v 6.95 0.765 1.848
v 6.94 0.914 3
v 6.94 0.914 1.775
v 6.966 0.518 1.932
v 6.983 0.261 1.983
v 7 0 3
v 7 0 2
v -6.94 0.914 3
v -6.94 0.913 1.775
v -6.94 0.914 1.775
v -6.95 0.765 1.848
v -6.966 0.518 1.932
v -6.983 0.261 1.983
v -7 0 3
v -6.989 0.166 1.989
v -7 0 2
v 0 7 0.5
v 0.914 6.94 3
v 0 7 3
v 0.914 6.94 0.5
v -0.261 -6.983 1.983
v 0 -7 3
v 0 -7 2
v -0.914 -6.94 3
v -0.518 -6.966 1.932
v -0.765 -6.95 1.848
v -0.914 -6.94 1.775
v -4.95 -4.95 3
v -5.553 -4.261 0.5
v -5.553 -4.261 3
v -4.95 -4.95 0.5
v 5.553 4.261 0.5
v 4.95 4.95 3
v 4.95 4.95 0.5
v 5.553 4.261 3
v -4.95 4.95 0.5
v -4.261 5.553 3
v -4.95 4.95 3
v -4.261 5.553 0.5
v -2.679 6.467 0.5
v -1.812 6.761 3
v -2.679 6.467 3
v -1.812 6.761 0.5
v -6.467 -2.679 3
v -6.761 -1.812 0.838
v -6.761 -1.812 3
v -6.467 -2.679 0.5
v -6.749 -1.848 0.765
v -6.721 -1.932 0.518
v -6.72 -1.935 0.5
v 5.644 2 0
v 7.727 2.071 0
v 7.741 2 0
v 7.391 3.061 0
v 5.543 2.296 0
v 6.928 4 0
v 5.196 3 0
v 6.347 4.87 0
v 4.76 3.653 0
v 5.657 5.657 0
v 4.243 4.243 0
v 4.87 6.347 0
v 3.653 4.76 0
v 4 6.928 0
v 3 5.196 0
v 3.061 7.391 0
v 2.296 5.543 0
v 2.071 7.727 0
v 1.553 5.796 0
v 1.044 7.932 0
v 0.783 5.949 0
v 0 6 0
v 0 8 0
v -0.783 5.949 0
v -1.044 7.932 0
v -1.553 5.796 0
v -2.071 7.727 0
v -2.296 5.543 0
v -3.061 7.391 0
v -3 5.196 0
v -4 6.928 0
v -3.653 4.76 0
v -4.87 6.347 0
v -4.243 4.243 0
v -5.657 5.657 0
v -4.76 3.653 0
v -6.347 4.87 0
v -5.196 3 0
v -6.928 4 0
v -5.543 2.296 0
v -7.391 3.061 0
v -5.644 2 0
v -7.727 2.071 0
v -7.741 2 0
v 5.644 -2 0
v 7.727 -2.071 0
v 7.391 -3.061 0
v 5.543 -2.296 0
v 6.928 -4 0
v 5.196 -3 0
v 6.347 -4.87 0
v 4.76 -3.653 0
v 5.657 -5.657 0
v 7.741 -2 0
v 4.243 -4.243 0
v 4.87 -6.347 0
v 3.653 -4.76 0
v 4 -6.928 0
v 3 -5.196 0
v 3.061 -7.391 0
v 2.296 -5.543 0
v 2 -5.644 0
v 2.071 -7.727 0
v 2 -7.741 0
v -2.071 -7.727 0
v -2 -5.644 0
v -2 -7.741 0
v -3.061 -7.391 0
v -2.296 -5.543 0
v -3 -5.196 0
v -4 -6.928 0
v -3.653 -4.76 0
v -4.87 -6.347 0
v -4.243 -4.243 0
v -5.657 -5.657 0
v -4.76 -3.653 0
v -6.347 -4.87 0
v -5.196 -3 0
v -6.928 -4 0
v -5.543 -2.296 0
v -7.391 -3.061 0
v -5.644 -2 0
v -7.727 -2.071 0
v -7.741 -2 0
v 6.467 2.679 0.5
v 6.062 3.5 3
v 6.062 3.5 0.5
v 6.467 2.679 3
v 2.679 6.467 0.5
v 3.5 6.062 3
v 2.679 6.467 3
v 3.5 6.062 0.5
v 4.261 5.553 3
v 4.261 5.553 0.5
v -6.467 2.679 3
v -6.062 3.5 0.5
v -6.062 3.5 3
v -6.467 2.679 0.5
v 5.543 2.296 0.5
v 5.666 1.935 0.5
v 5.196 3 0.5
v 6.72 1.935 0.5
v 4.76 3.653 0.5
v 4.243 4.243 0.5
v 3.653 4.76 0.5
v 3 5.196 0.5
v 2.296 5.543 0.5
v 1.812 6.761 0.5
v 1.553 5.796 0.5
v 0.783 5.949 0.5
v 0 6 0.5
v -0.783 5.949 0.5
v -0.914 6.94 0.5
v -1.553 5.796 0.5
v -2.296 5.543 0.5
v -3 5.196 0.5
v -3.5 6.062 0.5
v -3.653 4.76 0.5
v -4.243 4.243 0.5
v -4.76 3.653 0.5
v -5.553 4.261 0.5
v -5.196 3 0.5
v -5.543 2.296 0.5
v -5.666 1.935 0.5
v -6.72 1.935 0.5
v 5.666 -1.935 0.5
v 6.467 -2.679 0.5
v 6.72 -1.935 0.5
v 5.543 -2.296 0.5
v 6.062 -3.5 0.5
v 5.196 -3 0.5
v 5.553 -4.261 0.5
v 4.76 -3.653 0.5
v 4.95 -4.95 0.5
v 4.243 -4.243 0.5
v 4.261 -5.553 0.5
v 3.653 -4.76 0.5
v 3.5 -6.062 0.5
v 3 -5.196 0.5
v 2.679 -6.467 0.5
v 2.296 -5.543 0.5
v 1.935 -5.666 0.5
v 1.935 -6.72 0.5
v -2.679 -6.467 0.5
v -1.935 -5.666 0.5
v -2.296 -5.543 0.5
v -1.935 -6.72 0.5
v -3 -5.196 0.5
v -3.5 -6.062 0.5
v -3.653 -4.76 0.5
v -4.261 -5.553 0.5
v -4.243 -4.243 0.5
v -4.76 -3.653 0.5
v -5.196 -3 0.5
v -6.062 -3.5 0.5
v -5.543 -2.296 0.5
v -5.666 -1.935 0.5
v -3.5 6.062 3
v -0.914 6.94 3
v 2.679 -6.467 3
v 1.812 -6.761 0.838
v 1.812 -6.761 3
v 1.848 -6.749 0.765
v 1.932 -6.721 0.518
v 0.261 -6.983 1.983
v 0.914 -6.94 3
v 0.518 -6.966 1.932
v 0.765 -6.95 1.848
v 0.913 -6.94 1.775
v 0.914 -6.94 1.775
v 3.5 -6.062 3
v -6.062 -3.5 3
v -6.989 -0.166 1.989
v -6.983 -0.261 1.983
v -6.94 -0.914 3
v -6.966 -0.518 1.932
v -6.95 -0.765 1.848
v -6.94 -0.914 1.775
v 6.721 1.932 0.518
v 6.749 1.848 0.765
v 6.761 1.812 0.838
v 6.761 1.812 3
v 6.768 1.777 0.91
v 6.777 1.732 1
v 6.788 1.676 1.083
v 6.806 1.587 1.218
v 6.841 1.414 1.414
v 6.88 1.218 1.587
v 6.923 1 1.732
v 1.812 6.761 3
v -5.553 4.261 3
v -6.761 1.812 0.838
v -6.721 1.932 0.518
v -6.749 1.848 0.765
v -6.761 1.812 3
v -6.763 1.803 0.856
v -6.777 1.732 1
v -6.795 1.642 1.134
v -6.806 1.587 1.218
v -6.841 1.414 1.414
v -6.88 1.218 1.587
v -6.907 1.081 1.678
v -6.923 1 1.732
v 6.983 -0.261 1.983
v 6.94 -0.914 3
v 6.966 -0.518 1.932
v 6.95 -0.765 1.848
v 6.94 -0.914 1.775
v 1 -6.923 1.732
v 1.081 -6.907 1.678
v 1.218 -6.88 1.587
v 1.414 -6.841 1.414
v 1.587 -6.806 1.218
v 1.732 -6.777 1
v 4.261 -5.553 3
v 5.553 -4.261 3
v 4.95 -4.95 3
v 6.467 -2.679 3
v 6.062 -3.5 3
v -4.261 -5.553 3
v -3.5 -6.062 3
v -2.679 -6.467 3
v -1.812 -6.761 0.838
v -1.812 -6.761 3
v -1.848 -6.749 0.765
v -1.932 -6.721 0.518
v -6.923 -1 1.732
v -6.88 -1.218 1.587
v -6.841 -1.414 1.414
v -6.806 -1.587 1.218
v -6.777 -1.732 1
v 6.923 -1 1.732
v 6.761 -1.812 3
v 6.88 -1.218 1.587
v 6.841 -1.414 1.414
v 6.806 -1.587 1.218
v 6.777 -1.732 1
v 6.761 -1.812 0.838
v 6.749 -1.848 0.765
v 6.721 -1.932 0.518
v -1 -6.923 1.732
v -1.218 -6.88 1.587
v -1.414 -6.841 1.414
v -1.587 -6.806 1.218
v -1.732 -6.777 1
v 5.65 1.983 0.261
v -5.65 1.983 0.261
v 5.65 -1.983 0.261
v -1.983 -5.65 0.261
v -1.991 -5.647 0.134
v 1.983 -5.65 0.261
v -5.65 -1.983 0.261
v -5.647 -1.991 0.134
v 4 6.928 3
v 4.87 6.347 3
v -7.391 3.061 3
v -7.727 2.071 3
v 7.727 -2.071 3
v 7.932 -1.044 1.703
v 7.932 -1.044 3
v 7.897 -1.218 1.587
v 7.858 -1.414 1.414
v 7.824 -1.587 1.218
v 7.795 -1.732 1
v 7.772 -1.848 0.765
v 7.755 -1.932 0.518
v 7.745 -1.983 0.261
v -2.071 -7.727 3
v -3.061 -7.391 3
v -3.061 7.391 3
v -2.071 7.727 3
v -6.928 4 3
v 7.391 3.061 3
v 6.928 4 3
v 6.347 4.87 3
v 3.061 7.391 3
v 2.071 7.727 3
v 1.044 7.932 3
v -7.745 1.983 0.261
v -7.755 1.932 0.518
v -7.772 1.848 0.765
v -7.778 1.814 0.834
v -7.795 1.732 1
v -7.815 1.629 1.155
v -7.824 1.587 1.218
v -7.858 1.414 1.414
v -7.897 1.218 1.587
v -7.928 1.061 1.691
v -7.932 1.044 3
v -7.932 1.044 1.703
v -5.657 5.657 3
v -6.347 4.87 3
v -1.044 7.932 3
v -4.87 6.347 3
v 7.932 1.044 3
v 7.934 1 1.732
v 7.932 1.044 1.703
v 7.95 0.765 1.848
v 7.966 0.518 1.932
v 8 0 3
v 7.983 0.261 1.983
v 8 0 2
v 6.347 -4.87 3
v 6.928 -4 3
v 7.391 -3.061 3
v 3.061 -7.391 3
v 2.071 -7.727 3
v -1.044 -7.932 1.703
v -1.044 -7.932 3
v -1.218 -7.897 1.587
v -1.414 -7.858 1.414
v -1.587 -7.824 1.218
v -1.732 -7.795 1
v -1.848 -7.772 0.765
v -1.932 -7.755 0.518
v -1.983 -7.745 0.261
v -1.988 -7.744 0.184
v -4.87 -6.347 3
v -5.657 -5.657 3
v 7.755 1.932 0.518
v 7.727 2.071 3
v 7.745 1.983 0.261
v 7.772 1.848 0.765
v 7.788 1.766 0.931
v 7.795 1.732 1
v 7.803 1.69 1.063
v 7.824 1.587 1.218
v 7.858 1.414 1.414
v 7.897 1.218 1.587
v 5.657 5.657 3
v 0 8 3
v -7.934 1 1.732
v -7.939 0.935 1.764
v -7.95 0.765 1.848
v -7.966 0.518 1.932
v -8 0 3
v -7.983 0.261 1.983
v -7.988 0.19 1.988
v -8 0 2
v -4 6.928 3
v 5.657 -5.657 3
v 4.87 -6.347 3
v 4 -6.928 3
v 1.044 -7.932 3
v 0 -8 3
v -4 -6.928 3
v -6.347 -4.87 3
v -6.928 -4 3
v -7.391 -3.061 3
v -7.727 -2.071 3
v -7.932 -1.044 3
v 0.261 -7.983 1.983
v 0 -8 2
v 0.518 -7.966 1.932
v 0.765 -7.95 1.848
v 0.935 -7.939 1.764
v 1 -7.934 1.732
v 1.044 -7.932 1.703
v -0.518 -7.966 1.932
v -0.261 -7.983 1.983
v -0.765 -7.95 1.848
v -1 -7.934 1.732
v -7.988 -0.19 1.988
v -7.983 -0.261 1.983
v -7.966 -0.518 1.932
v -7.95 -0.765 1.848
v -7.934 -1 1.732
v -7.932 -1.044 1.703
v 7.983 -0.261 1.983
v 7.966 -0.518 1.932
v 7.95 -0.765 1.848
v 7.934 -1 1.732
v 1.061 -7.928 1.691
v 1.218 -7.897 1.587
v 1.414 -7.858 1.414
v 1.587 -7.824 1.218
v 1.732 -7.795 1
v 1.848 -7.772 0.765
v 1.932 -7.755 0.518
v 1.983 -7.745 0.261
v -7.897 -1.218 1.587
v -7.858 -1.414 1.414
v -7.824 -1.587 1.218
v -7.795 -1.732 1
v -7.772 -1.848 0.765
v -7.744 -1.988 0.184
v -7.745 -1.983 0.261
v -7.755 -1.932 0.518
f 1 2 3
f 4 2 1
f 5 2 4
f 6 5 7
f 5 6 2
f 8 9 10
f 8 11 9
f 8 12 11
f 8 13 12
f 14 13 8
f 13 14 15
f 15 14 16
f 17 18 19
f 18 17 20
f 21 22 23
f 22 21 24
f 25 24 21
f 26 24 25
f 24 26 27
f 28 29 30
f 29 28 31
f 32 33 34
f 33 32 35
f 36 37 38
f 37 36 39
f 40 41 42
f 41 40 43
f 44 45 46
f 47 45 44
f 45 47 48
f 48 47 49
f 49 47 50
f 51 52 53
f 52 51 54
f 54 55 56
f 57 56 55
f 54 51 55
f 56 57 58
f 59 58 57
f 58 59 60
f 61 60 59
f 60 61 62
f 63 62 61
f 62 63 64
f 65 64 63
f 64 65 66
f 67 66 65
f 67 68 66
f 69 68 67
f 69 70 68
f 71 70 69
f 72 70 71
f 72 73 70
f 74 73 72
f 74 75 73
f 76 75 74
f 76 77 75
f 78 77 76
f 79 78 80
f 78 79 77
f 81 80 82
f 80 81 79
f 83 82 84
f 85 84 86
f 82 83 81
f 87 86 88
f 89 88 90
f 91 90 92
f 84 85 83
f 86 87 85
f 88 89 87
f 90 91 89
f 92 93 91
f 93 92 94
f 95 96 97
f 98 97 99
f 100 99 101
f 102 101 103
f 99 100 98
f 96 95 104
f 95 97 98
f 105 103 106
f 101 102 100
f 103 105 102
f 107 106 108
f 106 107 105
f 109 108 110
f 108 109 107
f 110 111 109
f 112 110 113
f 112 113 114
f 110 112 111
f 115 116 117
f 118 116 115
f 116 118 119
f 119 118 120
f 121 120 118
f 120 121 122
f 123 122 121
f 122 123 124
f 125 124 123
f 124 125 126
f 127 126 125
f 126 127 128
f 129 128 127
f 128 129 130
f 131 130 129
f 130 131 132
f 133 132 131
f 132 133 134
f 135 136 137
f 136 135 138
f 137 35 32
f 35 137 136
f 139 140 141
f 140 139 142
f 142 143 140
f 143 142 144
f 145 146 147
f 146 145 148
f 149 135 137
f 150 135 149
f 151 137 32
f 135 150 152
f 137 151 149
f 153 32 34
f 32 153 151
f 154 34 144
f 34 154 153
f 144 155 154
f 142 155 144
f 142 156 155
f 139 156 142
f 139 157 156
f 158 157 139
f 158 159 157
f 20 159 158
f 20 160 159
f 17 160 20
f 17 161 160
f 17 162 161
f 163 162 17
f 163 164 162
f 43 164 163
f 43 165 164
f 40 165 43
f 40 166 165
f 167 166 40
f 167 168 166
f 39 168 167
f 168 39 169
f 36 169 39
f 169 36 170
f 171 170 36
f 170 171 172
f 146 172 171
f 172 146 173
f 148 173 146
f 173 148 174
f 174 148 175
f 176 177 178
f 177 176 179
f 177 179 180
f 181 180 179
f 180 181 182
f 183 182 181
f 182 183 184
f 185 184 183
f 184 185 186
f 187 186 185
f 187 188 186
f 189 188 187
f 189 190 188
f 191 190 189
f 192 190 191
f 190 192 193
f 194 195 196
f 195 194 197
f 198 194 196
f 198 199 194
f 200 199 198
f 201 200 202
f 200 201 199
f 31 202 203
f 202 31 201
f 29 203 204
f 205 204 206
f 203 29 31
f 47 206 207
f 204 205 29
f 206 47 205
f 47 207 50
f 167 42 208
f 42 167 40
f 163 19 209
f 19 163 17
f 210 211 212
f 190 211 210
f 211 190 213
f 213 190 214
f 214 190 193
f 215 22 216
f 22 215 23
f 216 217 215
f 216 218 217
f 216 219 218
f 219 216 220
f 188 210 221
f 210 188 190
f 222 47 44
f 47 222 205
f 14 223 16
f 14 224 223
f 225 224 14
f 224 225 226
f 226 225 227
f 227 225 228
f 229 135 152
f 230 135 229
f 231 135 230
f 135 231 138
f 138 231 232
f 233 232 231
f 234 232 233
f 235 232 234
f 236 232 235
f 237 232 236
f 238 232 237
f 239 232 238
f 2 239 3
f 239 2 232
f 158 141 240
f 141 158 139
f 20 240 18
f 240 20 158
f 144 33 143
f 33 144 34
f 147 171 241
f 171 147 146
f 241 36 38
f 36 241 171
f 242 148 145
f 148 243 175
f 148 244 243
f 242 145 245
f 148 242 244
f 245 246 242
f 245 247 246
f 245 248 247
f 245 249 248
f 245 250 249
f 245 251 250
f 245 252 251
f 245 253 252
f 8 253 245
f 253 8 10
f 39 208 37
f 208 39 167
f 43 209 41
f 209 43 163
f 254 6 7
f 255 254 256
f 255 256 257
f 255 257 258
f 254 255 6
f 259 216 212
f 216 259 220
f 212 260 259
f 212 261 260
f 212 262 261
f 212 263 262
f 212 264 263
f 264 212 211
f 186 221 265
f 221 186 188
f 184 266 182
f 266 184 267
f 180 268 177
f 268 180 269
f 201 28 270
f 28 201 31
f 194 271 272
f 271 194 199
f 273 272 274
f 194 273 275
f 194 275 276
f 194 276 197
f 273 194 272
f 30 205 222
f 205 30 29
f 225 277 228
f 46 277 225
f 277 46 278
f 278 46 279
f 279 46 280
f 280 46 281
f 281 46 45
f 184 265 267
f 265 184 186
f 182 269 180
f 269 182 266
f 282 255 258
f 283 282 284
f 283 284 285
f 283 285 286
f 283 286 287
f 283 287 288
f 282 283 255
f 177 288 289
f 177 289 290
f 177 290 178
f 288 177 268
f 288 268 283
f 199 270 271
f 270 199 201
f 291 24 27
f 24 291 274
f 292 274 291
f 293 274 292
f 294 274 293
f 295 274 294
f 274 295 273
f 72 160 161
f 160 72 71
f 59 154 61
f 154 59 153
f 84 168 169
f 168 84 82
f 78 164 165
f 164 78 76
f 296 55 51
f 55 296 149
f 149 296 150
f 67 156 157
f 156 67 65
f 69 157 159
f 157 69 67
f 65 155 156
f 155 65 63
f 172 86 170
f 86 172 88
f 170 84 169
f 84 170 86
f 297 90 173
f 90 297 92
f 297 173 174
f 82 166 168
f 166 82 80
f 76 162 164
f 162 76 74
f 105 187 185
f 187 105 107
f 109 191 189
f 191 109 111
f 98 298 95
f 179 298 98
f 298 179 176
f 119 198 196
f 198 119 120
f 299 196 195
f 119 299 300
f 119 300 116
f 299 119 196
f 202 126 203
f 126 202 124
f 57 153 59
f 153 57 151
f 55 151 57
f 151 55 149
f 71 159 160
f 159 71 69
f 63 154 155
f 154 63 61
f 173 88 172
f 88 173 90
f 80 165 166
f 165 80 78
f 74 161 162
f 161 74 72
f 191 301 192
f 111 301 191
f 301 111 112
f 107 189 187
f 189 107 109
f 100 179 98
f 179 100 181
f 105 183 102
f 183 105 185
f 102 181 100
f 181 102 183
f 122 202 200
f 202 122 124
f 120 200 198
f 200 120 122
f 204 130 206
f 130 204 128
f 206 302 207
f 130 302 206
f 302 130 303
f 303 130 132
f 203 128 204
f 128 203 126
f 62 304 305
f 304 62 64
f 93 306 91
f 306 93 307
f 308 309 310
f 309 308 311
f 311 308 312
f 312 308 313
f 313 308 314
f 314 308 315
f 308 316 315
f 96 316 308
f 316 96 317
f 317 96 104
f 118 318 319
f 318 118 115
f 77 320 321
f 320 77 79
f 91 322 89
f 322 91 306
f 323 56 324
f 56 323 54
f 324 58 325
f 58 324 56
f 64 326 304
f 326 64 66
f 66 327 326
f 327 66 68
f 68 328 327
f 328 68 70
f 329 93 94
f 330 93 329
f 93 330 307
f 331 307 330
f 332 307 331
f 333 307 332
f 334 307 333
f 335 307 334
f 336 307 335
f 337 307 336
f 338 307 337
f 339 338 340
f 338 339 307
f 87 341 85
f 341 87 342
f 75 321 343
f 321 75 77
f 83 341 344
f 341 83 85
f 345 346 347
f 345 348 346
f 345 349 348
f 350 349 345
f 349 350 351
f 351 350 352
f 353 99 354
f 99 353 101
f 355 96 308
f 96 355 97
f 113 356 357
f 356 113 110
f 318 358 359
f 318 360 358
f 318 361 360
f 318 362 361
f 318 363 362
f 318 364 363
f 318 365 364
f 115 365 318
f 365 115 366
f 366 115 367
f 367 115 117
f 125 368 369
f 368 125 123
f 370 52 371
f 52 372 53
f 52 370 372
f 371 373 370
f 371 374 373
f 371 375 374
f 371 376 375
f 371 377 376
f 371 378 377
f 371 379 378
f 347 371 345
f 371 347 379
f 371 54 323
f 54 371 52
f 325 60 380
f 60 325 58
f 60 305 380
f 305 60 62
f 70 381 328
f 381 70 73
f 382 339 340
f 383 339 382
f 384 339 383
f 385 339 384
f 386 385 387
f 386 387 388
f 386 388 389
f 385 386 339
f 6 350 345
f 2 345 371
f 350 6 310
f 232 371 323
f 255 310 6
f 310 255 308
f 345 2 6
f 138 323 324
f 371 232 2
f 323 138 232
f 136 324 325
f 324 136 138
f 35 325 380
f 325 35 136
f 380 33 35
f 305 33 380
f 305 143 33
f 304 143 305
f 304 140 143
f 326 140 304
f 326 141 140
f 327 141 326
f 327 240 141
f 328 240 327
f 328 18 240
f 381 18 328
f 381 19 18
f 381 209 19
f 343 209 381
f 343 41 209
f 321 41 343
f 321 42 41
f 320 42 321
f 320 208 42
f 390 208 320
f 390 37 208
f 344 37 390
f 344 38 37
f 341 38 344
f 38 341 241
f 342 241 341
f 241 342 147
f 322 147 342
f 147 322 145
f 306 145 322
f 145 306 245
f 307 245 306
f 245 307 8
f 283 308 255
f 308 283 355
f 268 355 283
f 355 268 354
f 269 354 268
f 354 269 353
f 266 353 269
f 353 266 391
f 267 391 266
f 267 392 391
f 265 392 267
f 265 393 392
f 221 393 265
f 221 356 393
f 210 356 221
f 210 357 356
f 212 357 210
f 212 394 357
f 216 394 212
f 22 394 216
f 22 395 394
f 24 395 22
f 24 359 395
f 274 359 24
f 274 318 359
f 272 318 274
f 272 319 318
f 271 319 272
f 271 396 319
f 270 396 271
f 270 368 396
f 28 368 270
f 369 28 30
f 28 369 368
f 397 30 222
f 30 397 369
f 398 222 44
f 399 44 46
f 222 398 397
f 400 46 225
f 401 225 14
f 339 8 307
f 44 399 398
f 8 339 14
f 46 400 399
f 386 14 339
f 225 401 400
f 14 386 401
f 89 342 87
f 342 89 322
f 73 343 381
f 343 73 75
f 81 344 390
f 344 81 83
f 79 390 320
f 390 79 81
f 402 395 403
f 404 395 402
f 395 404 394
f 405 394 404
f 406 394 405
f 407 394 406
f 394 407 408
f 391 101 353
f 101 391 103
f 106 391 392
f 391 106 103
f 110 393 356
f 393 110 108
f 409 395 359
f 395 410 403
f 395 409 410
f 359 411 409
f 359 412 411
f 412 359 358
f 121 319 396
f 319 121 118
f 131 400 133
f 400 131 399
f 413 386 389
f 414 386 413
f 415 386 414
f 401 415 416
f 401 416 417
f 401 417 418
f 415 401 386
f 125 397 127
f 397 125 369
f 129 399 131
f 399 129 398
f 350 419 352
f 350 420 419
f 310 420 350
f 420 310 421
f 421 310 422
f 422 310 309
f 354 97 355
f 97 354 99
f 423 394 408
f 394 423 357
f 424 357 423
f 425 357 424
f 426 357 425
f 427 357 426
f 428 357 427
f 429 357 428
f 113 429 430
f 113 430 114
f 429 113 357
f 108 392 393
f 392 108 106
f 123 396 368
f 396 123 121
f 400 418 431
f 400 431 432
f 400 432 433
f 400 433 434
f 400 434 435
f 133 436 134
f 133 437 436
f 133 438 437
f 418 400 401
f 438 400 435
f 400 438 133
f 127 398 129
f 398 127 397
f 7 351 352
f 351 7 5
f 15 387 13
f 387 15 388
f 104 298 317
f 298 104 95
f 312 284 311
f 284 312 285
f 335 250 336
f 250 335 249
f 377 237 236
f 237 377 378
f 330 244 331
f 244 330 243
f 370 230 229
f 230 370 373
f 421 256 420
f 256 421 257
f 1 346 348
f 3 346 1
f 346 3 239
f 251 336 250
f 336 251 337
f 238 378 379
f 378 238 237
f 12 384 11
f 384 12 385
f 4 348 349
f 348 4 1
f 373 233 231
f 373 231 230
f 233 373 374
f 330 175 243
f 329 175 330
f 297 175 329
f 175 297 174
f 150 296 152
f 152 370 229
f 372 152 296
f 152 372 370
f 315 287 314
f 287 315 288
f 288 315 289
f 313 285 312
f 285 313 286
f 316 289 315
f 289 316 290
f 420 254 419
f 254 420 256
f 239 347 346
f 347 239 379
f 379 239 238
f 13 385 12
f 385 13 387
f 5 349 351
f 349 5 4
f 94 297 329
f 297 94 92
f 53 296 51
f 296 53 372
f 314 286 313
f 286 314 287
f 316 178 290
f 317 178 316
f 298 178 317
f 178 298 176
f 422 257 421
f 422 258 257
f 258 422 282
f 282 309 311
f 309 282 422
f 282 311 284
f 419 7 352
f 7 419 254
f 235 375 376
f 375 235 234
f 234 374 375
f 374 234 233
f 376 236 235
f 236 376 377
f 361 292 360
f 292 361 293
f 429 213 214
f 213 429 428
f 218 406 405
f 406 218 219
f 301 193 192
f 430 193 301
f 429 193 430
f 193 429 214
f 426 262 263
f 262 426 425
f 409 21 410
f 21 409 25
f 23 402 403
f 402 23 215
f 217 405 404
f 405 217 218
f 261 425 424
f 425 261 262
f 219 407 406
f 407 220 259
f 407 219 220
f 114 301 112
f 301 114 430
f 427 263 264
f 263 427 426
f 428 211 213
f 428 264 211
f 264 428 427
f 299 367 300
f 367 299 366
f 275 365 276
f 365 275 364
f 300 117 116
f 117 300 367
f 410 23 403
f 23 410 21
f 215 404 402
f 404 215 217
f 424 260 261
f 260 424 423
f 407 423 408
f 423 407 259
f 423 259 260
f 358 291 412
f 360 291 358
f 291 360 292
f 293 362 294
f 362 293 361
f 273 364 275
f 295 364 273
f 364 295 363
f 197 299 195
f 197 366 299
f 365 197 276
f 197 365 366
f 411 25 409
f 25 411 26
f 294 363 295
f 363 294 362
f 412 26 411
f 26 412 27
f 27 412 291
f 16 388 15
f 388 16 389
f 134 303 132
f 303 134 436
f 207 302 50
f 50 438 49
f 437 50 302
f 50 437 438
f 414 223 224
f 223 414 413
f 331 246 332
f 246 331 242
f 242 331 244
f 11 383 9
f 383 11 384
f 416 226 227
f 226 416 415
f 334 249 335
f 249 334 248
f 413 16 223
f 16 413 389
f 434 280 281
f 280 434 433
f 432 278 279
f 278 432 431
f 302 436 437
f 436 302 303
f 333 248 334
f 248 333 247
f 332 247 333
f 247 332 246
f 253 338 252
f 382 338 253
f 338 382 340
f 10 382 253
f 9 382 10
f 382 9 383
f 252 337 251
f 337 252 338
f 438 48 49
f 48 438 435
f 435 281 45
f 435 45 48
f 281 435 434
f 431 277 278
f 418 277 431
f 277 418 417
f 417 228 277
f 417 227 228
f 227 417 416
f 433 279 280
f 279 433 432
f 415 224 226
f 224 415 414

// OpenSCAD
// file: ../build_environments.scad
// build_environments.scad: modules to build level sections
//

module pool(diameter=10.0, wall_height=2.0, step_width=3.0, connections=[])
{
    difference() {
        union() {
        difference() {
            cylinder(h=0.5,r1=diameter+step_width,r2=diameter+step_width,$fn=48);
            translate([0,0,-0.1])
                cylinder(h=0.7,r1=diameter,r2=diameter,$fn=48);
        }
        difference() {
            cylinder(h=wall_height,r1=diameter+step_width+1.0,r2=diameter+step_width+1.0,$fn=48);
            translate([0,0,-0.1])
                cylinder(h=wall_height+0.2,r1=diameter+step_width,r2=diameter+step_width,$fn=48);
        }
        }
    
        for (c = connections)
        {
            rotate([0,90,0]) {
                angle = atan2(c[1],c[0]);
                rotate([-angle,0,0]) {
                    cylinder(h=diameter+5.0,r1=c[2],r2=c[2],$fn=48);
                }
            }
        }
    }
}

module straight(length=10.0, width=2.0, dy1=0.0, dy2=0.0, dz=0.0)
{
    dims = [0, 0, 0, 0, 0, (dz/length)];
    matrix = [
        [ 1, dims[0], dims[1], 0 ],
        [ dims[2], 1, dims[4], 0 ],
        [ dims[5], dims[3], 1, 0 ],
        [ 0, 0, 0, 1 ]
    ];
    multmatrix(matrix)
    difference() {
        translate([dy1,0,0])
        union() {
            rotate([0,90,0]) {
                difference() {
                    cylinder(h=(length-dy1-dy2),r1=width+1.0,r2=width+1.0,$fn=24);
                    translate([0,0,-0.1])
                        cylinder(h=(length-dy1-dy2+0.2),r1=width,r2=width,$fn=24);
                }
                difference() {
                    cylinder(h=1.0,r1=width+2.0,r2=width+2.0,$fn=24);
                    translate([0,0,-0.1])
                        cylinder(h=1.2,r1=width,r2=width,$fn=24);
                }
                translate([0,0,(length-dy1-dy2)-1.0]) {
                    difference() {
                        cylinder(h=1.0,r1=width+2.0,r2=width+2.0,$fn=24);
                        translate([0,0,-0.1])
                            cylinder(h=1.2,r1=width,r2=width,$fn=24);
                    }
                }
            }
        }
        translate([0,0,-(2*width+4.0)/2])
            cube([3*length,3*length,2*width+4.0],center=true);
    }
}

module curve(p0=[0,0], center=[0,0], dir=1, angle=0.0, width=2.0)
{
    radius = sqrt((p0[0]-center[0])*(p0[0]-center[0]) + (p0[1]-center[1])*(p0[1]-center[1]));
    if (dir == 0) {
        difference() {
            rotate([0,0,-90])
            difference() {
                rotate_extrude(angle = angle, convexity = 10, $fn=32)
                    translate([radius, 0, 0])
                        circle(r = width+1.0,$fn=24);
                rotate([0,0,-1.0])
                    rotate_extrude(angle = angle+2.0, convexity = 10, $fn=32)
                        translate([radius, 0, 0])
                            circle(r = width,$fn=24);
            }
            translate([0,0,-(2*width+4.0)/2])
                cube([5*radius,5*radius,2*width+4.0],center=true);
        }
    }
    else {
        difference() {
            rotate([0,0,90])
            difference() {
                rotate_extrude(angle = -angle, convexity = 10, $fn=32)
                    translate([radius, 0, 0])
                        circle(r = width+1.0,$fn=24);
                rotate([0,0,1.0])
                    rotate_extrude(angle = -angle-2.0, convexity = 10, $fn=32)
                        translate([radius, 0, 0])
                            circle(r = width,$fn=24);
            }
            translate([0,0,-(2*width+4.0)/2])
                cube([5*radius,5*radius,2*width+4.0],center=true);
        }
    }

}

// test pool
//pool(diameter=12.0000, wall_height=3.0000, step_width=3.0000, connections=[[0.0000,-26.0000,2.0000], [23.6074,0.0000,2.0000]]);

// test straight, slope
//straight(length=26.0000, width=2.0000, dy1=11.8322, dy2=6.7082, dz=0.0000);
//straight(length=29.1549, width=12.0000, dy1=0.0000, dy2=0.0000, dz=-15.0000);

// test curve
//curve(p0=[23.6074, 0.0000], center=[23.6074, 5.0000], dir=0, angle=60.1011, width=2.0000);
//curve(p0=[33.6426, 12.4219], center=[37.9771, 9.9295], dir=1, angle=120.4627, width=2.0000);
// main file
use <../build_environments.scad>;
pool(diameter=6.0000, wall_height=3.0000, step_width=1.0000, connections=[[16.0000,0.0000,2.0000], [0.0000,-16.0000,2.0000], [-16.0000,0.0000,2.0000]]);
